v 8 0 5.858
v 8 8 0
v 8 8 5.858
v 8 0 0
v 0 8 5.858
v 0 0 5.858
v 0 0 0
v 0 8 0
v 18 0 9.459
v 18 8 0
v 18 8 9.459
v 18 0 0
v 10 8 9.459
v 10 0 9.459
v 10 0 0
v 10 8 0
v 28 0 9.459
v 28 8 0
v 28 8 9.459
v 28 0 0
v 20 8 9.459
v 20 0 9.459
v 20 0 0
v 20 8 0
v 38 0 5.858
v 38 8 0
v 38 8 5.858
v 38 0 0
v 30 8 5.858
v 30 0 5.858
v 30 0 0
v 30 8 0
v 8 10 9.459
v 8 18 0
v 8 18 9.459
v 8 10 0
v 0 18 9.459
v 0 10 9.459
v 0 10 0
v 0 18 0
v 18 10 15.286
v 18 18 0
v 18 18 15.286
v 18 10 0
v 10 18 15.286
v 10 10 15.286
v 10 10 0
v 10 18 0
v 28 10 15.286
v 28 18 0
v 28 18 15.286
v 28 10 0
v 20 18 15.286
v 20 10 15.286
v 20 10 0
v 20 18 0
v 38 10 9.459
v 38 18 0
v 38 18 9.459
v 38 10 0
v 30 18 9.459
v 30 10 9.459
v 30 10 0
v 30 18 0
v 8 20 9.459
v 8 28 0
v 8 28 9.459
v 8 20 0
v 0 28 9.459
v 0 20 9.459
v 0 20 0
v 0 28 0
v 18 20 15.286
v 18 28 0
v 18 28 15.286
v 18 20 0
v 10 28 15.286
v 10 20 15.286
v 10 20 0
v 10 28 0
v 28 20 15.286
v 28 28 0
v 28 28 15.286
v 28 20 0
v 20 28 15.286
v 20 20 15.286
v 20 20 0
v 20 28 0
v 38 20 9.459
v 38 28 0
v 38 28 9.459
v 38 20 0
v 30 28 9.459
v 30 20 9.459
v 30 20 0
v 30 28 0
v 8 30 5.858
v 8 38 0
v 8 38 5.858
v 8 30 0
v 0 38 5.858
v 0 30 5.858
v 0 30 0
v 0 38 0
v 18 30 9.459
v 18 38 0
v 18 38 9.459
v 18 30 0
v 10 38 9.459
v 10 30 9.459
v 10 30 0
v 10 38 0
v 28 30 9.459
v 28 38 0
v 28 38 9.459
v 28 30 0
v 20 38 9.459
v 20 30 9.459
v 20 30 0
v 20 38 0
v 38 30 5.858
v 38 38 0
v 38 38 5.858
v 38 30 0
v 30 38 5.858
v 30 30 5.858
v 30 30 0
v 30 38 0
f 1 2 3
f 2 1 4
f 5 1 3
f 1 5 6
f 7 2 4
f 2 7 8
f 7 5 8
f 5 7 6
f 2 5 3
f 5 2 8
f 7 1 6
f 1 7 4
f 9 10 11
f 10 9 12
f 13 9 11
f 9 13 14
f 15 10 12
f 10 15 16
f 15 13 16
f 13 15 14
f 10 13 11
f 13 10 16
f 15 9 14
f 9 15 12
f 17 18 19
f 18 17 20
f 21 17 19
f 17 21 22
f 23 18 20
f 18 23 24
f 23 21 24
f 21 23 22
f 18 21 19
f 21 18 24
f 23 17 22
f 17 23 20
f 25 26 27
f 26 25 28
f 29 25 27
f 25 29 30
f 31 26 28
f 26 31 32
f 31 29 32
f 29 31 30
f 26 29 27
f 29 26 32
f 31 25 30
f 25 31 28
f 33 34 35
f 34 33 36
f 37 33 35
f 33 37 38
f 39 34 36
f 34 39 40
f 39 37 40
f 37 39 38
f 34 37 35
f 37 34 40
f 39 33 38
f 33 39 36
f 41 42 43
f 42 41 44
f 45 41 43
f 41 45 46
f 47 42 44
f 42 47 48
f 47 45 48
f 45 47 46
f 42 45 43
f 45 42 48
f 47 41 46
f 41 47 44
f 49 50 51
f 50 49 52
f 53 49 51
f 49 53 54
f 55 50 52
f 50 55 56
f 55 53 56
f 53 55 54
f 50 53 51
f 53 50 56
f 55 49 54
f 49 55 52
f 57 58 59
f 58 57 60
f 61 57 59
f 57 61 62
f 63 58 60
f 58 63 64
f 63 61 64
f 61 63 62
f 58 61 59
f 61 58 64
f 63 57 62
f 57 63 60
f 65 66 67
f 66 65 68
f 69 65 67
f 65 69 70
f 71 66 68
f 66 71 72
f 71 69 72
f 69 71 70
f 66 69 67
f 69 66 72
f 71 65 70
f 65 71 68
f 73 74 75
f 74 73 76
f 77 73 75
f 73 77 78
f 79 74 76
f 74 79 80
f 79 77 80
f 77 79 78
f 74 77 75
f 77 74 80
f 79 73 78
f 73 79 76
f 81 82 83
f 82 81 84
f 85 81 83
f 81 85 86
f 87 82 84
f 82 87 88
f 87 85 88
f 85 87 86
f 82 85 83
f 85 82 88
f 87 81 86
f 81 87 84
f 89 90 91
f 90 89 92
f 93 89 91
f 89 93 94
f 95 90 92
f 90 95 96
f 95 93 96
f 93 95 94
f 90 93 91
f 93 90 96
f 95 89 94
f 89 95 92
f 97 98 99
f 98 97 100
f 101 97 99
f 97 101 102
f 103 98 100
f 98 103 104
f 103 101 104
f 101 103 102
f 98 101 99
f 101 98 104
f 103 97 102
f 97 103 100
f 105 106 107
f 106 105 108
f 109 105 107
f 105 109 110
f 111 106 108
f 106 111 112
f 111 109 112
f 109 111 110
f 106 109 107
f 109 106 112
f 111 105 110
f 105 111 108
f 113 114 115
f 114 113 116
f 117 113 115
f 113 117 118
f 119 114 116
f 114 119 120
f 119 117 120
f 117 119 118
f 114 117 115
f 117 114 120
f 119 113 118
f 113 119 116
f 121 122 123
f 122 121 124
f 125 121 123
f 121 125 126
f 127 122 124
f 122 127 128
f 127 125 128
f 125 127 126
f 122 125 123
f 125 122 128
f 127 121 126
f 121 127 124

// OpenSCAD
// Parametric array of boxes with varying heights
rows = 4;
cols = 4;
base_size = 8;
spacing = 10;
max_height = 20;

for (row = [0:rows-1]) {
    for (col = [0:cols-1]) {
        height = max_height * (1 - sqrt(pow(row - 1.5, 2) + pow(col - 1.5, 2)) / 3);
        
        translate([col * spacing, row * spacing, 0])
            cube([base_size, base_size, max(height, 1)]);
    }
}
